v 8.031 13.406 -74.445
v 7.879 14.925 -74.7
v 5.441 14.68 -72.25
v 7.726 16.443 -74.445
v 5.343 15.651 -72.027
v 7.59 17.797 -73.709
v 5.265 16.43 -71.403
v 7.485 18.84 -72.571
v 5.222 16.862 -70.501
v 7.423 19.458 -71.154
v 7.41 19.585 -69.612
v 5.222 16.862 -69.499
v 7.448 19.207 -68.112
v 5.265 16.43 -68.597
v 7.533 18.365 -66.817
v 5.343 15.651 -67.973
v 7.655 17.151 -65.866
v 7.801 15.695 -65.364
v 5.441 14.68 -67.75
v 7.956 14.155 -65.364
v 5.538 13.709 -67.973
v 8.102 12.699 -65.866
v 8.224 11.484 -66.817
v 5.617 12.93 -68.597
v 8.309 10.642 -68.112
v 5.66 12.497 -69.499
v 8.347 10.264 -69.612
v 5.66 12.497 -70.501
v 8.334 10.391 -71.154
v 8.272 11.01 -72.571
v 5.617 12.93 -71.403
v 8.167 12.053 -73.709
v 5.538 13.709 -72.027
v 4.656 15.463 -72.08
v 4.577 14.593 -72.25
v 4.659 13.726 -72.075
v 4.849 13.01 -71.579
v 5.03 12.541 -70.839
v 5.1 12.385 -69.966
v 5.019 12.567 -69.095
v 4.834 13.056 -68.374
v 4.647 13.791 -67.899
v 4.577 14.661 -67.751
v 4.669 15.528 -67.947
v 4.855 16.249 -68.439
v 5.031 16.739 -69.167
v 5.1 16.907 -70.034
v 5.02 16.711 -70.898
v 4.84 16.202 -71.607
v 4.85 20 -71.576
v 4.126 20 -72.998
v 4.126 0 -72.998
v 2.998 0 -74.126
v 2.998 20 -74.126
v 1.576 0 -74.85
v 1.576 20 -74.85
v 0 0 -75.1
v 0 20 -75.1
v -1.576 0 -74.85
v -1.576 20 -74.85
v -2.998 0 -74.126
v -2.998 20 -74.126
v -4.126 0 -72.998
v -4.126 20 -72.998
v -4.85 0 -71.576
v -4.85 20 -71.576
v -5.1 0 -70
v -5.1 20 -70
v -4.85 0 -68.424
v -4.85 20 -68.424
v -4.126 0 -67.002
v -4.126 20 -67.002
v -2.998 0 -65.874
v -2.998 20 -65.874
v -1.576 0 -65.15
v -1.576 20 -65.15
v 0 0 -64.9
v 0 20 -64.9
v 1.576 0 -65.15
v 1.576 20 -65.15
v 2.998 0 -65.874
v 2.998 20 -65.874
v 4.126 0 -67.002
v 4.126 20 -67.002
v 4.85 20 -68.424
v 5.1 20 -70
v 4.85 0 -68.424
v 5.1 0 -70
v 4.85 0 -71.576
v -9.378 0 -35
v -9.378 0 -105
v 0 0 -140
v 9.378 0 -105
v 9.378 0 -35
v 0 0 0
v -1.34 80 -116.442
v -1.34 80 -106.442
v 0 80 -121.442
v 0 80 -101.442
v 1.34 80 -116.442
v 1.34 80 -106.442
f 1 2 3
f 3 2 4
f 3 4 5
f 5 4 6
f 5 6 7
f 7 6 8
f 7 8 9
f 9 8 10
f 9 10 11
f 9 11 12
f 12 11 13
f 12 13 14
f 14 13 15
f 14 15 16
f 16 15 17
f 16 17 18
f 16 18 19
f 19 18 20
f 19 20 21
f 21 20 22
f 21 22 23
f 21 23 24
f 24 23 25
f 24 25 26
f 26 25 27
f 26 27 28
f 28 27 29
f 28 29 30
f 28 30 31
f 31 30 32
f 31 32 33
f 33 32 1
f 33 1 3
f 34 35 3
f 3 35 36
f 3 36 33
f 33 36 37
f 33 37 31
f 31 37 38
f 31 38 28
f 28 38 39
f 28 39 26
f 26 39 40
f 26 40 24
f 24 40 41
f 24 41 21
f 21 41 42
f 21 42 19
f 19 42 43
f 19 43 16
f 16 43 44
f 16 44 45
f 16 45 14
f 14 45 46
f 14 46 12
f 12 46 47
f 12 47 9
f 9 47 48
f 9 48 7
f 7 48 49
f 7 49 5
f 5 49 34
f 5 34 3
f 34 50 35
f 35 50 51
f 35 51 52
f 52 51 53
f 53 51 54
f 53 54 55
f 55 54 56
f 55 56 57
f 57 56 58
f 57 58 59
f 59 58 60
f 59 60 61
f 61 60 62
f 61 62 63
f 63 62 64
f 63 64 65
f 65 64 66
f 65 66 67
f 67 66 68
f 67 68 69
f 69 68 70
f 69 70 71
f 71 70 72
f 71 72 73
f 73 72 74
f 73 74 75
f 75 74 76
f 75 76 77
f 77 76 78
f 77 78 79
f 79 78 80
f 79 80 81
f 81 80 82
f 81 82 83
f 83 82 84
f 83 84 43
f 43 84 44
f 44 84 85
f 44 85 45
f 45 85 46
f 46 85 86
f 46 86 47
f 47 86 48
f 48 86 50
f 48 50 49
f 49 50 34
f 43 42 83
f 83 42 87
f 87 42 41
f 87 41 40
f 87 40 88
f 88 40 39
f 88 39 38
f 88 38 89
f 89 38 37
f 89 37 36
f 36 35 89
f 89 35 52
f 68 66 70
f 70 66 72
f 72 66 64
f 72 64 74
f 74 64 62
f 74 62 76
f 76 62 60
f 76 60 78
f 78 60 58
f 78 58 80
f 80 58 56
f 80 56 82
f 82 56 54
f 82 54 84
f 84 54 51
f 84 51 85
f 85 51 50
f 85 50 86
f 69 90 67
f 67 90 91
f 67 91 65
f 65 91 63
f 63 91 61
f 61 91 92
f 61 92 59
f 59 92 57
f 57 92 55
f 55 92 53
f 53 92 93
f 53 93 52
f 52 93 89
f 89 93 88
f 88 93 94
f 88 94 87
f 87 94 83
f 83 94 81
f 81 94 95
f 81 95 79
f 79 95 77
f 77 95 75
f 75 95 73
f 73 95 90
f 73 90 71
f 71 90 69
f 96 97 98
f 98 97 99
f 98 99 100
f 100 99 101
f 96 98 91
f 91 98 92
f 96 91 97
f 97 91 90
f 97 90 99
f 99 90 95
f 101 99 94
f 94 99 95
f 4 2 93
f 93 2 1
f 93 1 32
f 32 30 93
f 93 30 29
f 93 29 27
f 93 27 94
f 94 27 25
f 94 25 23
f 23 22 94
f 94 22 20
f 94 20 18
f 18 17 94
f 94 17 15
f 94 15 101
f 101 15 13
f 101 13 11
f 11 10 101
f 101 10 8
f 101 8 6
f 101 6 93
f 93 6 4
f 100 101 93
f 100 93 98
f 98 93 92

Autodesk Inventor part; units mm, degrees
ref_plane "XY Plane" through (0, 0, 0) normal (0, 0, 1) x (1, 0, 0)
sketch "草圖1" plane through (0, 0, 0) normal (1, 0, 0) x (0, 1, 0)
  line L0 (0, 0) -> (0, -140)
  line L1 (0, -140) -> (80, -121.4423)
  line L2 (80, -121.4423) -> (80, -101.4423)
  line L3 (80, -101.4423) -> (0, 0)
  line L4 (-21.2222, 0) -> (127.3329, 0) projected
  line L5 (0, -140) -> (106.1108, -140)
  dimension "d0" = 80
  dimension "d1" = 140
  dimension "d4" = 20
  dimension "d5" = 51.74
  dimension "d38" = 13.06
sketch "草圖2" plane through (0, 0, 0) normal (0, 1, 0) x (-1, 0, 0)
  line L0 (0, -164.5545) -> (0, 20.7772)
  line L1 (0, 0) -> (9.3782, -35)
  line L2 (9.3782, -35) -> (9.3782, -105)
  line L3 (9.3782, -105) -> (0, -140)
  line L4 (0, -140) -> (-9.3782, -105)
  line L5 (-9.3782, -105) -> (-9.3782, -35)
  line L6 (-9.3782, -35) -> (0, 0)
  point P0 (9.3782, -70)
  point P1 (-9.3782, -70)
  dimension "d34" = 140
  dimension "d35" = 70
  dimension "d63" = 30
ref_plane "工作平面1" through (0, 40, 0) normal (0, 1, 0) x (-1, 0, 0)
sketch "草圖3" plane through (0, 40, 0) normal (0, 1, 0) x (-1, 0, 0)
  line L0 (0, -140) -> (0, -121.4423) construction
  line L1 (0, -101.4423) -> (0, 0) construction
  arc A0 (0, -130.7211) -> (0, -50.7211) centre (-157.5, -90.7211) ccw
  arc A1 (0, -50.7211) -> (0, -130.7211) centre (157.5, -90.7211) ccw
  point P0 (-5, -90.7211)
  point P1 (5, -90.7211)
  dimension "d8" = 10
ref_plane "工作平面2" through (0, 80, -121.4423) normal (0, 1, 0) x (0, 0, 1)
sketch "草圖4" plane through (0, 80, -121.4423) normal (0, 1, 0) x (0, 0, 1)
  line L0 (0, 0) -> (20, 0) construction
  line L1 (0, 0) -> (5, -1.3397)
  line L2 (5, -1.3397) -> (15, -1.3397)
  line L3 (15, -1.3397) -> (20, 0)
  line L4 (20, 0) -> (15, 1.3397)
  line L5 (15, 1.3397) -> (5, 1.3397)
  line L6 (5, 1.3397) -> (0, 0)
  line L7 (0, 0) -> (23.7268, 0)
  point P0 (121.4423, 0)
  point P1 (10, 1.3397)
  point P2 (10, -1.3397)
  dimension "d36" = 20
  dimension "d37" = 10
  dimension "d62" = 30
loft "Loft3" add profiles "草圖4", "草圖2"
sketch "草圖5" plane through (0, 0, 0) normal (0, 1, 0) x (-1, 0, 0)
  circle A0 centre (0, -70) radius 5.1
  line L0 (0, -168) -> (0, 28) projected
  line L1 (-220.5, 0) -> (220.5, 0) projected
  point P0 (0, 0)
  dimension "d17" = 10.2
  dimension "d18" = 70
extrude "擠出1" cut sketch "草圖5" along normal blind 20
sketch "Sketch12" plane through (9.3782, 0, -35) normal (0.9949897, 0.0999775, 0) x (0, 0, -1)
  line L0 (0, 0) -> (70, 0) projected
  line L1 (35, 0) -> (35, 15)
  point P0 (-35, 0.9376)
  dimension "d69" = 15
hole "Hole3" at (7.8786, 14.9248, -70) direction (-0.9949897, -0.0999775, 0) diameter 4.5 depth 10 tip angle 118 countersink diameter 9.4 countersink angle 90 clearance for "Countersunk Flat Head Screw ISO 2009/7046" size "M4" standard "ISO"
sketch "Sketch9" plane through (9.3782, 0, -35) normal (0.9949897, 0.0999775, 0) x (0, 0, -1)
  line L0 (86.4423, 80.5368) -> (105, 0.9376) projected
  line L1 (66.4423, 80.5368) -> (71.4423, 80.4028) projected
  line L2 (71.4423, 80.4028) -> (81.4423, 80.4028) projected
  line L3 (81.4423, 80.4028) -> (86.4423, 80.5368) projected
  line L4 (66.4423, 80.5368) -> (-35, 0.9376) projected
  line L5 (-35, 0.9376) -> (0, 0) projected
  line L6 (0, 0) -> (70, 0) projected
  line L7 (70, 0) -> (105, 0.9376) projected
sketch "Sketch7" plane through (9.3782, 0, -35) normal (0.9949897, 0.0999775, 0) x (0, 0, -1)
  line L0 (0, 0) -> (70, 0) projected
  line L1 (0, 0) -> (70, 0) projected
  line L2 (40, 0) -> (30, 0) projected
  line L3 (71.4423, 80.4028) -> (66.4423, 80.5368) projected
  line L4 (66.4423, 80.5368) -> (-35, 0.9376) projected
  line L5 (105, 0.9376) -> (86.4423, 80.5368) projected
  line L6 (71.4423, 80.4028) -> (81.4423, 80.4028) projected
  line L7 (-35, 0.9376) -> (0, 0) projected
  line L8 (70, 0) -> (105, 0.9376) projected
  line L9 (86.4423, 80.5368) -> (81.4423, 80.4028) projected
  point P0 (35, 15)
  dimension "d39" = 15
sketch "Sketch8" plane through (9.3782, 0, -35) normal (0.9949897, 0.0999775, 0) x (0, 0, -1)
  circle A0 centre (55, 40) radius 2
  line L0 (0, 0) -> (70, 0) projected
  point P0 (-35, 0.9376)
  dimension "d49" = 40
  dimension "d50" = 90
  dimension "d51" = 4
equation "\"d35\" = 0.5 * d34"
equation "\"d37\" = 0.5 * d36"
properties part number "canard" material "ABS Plastic"
